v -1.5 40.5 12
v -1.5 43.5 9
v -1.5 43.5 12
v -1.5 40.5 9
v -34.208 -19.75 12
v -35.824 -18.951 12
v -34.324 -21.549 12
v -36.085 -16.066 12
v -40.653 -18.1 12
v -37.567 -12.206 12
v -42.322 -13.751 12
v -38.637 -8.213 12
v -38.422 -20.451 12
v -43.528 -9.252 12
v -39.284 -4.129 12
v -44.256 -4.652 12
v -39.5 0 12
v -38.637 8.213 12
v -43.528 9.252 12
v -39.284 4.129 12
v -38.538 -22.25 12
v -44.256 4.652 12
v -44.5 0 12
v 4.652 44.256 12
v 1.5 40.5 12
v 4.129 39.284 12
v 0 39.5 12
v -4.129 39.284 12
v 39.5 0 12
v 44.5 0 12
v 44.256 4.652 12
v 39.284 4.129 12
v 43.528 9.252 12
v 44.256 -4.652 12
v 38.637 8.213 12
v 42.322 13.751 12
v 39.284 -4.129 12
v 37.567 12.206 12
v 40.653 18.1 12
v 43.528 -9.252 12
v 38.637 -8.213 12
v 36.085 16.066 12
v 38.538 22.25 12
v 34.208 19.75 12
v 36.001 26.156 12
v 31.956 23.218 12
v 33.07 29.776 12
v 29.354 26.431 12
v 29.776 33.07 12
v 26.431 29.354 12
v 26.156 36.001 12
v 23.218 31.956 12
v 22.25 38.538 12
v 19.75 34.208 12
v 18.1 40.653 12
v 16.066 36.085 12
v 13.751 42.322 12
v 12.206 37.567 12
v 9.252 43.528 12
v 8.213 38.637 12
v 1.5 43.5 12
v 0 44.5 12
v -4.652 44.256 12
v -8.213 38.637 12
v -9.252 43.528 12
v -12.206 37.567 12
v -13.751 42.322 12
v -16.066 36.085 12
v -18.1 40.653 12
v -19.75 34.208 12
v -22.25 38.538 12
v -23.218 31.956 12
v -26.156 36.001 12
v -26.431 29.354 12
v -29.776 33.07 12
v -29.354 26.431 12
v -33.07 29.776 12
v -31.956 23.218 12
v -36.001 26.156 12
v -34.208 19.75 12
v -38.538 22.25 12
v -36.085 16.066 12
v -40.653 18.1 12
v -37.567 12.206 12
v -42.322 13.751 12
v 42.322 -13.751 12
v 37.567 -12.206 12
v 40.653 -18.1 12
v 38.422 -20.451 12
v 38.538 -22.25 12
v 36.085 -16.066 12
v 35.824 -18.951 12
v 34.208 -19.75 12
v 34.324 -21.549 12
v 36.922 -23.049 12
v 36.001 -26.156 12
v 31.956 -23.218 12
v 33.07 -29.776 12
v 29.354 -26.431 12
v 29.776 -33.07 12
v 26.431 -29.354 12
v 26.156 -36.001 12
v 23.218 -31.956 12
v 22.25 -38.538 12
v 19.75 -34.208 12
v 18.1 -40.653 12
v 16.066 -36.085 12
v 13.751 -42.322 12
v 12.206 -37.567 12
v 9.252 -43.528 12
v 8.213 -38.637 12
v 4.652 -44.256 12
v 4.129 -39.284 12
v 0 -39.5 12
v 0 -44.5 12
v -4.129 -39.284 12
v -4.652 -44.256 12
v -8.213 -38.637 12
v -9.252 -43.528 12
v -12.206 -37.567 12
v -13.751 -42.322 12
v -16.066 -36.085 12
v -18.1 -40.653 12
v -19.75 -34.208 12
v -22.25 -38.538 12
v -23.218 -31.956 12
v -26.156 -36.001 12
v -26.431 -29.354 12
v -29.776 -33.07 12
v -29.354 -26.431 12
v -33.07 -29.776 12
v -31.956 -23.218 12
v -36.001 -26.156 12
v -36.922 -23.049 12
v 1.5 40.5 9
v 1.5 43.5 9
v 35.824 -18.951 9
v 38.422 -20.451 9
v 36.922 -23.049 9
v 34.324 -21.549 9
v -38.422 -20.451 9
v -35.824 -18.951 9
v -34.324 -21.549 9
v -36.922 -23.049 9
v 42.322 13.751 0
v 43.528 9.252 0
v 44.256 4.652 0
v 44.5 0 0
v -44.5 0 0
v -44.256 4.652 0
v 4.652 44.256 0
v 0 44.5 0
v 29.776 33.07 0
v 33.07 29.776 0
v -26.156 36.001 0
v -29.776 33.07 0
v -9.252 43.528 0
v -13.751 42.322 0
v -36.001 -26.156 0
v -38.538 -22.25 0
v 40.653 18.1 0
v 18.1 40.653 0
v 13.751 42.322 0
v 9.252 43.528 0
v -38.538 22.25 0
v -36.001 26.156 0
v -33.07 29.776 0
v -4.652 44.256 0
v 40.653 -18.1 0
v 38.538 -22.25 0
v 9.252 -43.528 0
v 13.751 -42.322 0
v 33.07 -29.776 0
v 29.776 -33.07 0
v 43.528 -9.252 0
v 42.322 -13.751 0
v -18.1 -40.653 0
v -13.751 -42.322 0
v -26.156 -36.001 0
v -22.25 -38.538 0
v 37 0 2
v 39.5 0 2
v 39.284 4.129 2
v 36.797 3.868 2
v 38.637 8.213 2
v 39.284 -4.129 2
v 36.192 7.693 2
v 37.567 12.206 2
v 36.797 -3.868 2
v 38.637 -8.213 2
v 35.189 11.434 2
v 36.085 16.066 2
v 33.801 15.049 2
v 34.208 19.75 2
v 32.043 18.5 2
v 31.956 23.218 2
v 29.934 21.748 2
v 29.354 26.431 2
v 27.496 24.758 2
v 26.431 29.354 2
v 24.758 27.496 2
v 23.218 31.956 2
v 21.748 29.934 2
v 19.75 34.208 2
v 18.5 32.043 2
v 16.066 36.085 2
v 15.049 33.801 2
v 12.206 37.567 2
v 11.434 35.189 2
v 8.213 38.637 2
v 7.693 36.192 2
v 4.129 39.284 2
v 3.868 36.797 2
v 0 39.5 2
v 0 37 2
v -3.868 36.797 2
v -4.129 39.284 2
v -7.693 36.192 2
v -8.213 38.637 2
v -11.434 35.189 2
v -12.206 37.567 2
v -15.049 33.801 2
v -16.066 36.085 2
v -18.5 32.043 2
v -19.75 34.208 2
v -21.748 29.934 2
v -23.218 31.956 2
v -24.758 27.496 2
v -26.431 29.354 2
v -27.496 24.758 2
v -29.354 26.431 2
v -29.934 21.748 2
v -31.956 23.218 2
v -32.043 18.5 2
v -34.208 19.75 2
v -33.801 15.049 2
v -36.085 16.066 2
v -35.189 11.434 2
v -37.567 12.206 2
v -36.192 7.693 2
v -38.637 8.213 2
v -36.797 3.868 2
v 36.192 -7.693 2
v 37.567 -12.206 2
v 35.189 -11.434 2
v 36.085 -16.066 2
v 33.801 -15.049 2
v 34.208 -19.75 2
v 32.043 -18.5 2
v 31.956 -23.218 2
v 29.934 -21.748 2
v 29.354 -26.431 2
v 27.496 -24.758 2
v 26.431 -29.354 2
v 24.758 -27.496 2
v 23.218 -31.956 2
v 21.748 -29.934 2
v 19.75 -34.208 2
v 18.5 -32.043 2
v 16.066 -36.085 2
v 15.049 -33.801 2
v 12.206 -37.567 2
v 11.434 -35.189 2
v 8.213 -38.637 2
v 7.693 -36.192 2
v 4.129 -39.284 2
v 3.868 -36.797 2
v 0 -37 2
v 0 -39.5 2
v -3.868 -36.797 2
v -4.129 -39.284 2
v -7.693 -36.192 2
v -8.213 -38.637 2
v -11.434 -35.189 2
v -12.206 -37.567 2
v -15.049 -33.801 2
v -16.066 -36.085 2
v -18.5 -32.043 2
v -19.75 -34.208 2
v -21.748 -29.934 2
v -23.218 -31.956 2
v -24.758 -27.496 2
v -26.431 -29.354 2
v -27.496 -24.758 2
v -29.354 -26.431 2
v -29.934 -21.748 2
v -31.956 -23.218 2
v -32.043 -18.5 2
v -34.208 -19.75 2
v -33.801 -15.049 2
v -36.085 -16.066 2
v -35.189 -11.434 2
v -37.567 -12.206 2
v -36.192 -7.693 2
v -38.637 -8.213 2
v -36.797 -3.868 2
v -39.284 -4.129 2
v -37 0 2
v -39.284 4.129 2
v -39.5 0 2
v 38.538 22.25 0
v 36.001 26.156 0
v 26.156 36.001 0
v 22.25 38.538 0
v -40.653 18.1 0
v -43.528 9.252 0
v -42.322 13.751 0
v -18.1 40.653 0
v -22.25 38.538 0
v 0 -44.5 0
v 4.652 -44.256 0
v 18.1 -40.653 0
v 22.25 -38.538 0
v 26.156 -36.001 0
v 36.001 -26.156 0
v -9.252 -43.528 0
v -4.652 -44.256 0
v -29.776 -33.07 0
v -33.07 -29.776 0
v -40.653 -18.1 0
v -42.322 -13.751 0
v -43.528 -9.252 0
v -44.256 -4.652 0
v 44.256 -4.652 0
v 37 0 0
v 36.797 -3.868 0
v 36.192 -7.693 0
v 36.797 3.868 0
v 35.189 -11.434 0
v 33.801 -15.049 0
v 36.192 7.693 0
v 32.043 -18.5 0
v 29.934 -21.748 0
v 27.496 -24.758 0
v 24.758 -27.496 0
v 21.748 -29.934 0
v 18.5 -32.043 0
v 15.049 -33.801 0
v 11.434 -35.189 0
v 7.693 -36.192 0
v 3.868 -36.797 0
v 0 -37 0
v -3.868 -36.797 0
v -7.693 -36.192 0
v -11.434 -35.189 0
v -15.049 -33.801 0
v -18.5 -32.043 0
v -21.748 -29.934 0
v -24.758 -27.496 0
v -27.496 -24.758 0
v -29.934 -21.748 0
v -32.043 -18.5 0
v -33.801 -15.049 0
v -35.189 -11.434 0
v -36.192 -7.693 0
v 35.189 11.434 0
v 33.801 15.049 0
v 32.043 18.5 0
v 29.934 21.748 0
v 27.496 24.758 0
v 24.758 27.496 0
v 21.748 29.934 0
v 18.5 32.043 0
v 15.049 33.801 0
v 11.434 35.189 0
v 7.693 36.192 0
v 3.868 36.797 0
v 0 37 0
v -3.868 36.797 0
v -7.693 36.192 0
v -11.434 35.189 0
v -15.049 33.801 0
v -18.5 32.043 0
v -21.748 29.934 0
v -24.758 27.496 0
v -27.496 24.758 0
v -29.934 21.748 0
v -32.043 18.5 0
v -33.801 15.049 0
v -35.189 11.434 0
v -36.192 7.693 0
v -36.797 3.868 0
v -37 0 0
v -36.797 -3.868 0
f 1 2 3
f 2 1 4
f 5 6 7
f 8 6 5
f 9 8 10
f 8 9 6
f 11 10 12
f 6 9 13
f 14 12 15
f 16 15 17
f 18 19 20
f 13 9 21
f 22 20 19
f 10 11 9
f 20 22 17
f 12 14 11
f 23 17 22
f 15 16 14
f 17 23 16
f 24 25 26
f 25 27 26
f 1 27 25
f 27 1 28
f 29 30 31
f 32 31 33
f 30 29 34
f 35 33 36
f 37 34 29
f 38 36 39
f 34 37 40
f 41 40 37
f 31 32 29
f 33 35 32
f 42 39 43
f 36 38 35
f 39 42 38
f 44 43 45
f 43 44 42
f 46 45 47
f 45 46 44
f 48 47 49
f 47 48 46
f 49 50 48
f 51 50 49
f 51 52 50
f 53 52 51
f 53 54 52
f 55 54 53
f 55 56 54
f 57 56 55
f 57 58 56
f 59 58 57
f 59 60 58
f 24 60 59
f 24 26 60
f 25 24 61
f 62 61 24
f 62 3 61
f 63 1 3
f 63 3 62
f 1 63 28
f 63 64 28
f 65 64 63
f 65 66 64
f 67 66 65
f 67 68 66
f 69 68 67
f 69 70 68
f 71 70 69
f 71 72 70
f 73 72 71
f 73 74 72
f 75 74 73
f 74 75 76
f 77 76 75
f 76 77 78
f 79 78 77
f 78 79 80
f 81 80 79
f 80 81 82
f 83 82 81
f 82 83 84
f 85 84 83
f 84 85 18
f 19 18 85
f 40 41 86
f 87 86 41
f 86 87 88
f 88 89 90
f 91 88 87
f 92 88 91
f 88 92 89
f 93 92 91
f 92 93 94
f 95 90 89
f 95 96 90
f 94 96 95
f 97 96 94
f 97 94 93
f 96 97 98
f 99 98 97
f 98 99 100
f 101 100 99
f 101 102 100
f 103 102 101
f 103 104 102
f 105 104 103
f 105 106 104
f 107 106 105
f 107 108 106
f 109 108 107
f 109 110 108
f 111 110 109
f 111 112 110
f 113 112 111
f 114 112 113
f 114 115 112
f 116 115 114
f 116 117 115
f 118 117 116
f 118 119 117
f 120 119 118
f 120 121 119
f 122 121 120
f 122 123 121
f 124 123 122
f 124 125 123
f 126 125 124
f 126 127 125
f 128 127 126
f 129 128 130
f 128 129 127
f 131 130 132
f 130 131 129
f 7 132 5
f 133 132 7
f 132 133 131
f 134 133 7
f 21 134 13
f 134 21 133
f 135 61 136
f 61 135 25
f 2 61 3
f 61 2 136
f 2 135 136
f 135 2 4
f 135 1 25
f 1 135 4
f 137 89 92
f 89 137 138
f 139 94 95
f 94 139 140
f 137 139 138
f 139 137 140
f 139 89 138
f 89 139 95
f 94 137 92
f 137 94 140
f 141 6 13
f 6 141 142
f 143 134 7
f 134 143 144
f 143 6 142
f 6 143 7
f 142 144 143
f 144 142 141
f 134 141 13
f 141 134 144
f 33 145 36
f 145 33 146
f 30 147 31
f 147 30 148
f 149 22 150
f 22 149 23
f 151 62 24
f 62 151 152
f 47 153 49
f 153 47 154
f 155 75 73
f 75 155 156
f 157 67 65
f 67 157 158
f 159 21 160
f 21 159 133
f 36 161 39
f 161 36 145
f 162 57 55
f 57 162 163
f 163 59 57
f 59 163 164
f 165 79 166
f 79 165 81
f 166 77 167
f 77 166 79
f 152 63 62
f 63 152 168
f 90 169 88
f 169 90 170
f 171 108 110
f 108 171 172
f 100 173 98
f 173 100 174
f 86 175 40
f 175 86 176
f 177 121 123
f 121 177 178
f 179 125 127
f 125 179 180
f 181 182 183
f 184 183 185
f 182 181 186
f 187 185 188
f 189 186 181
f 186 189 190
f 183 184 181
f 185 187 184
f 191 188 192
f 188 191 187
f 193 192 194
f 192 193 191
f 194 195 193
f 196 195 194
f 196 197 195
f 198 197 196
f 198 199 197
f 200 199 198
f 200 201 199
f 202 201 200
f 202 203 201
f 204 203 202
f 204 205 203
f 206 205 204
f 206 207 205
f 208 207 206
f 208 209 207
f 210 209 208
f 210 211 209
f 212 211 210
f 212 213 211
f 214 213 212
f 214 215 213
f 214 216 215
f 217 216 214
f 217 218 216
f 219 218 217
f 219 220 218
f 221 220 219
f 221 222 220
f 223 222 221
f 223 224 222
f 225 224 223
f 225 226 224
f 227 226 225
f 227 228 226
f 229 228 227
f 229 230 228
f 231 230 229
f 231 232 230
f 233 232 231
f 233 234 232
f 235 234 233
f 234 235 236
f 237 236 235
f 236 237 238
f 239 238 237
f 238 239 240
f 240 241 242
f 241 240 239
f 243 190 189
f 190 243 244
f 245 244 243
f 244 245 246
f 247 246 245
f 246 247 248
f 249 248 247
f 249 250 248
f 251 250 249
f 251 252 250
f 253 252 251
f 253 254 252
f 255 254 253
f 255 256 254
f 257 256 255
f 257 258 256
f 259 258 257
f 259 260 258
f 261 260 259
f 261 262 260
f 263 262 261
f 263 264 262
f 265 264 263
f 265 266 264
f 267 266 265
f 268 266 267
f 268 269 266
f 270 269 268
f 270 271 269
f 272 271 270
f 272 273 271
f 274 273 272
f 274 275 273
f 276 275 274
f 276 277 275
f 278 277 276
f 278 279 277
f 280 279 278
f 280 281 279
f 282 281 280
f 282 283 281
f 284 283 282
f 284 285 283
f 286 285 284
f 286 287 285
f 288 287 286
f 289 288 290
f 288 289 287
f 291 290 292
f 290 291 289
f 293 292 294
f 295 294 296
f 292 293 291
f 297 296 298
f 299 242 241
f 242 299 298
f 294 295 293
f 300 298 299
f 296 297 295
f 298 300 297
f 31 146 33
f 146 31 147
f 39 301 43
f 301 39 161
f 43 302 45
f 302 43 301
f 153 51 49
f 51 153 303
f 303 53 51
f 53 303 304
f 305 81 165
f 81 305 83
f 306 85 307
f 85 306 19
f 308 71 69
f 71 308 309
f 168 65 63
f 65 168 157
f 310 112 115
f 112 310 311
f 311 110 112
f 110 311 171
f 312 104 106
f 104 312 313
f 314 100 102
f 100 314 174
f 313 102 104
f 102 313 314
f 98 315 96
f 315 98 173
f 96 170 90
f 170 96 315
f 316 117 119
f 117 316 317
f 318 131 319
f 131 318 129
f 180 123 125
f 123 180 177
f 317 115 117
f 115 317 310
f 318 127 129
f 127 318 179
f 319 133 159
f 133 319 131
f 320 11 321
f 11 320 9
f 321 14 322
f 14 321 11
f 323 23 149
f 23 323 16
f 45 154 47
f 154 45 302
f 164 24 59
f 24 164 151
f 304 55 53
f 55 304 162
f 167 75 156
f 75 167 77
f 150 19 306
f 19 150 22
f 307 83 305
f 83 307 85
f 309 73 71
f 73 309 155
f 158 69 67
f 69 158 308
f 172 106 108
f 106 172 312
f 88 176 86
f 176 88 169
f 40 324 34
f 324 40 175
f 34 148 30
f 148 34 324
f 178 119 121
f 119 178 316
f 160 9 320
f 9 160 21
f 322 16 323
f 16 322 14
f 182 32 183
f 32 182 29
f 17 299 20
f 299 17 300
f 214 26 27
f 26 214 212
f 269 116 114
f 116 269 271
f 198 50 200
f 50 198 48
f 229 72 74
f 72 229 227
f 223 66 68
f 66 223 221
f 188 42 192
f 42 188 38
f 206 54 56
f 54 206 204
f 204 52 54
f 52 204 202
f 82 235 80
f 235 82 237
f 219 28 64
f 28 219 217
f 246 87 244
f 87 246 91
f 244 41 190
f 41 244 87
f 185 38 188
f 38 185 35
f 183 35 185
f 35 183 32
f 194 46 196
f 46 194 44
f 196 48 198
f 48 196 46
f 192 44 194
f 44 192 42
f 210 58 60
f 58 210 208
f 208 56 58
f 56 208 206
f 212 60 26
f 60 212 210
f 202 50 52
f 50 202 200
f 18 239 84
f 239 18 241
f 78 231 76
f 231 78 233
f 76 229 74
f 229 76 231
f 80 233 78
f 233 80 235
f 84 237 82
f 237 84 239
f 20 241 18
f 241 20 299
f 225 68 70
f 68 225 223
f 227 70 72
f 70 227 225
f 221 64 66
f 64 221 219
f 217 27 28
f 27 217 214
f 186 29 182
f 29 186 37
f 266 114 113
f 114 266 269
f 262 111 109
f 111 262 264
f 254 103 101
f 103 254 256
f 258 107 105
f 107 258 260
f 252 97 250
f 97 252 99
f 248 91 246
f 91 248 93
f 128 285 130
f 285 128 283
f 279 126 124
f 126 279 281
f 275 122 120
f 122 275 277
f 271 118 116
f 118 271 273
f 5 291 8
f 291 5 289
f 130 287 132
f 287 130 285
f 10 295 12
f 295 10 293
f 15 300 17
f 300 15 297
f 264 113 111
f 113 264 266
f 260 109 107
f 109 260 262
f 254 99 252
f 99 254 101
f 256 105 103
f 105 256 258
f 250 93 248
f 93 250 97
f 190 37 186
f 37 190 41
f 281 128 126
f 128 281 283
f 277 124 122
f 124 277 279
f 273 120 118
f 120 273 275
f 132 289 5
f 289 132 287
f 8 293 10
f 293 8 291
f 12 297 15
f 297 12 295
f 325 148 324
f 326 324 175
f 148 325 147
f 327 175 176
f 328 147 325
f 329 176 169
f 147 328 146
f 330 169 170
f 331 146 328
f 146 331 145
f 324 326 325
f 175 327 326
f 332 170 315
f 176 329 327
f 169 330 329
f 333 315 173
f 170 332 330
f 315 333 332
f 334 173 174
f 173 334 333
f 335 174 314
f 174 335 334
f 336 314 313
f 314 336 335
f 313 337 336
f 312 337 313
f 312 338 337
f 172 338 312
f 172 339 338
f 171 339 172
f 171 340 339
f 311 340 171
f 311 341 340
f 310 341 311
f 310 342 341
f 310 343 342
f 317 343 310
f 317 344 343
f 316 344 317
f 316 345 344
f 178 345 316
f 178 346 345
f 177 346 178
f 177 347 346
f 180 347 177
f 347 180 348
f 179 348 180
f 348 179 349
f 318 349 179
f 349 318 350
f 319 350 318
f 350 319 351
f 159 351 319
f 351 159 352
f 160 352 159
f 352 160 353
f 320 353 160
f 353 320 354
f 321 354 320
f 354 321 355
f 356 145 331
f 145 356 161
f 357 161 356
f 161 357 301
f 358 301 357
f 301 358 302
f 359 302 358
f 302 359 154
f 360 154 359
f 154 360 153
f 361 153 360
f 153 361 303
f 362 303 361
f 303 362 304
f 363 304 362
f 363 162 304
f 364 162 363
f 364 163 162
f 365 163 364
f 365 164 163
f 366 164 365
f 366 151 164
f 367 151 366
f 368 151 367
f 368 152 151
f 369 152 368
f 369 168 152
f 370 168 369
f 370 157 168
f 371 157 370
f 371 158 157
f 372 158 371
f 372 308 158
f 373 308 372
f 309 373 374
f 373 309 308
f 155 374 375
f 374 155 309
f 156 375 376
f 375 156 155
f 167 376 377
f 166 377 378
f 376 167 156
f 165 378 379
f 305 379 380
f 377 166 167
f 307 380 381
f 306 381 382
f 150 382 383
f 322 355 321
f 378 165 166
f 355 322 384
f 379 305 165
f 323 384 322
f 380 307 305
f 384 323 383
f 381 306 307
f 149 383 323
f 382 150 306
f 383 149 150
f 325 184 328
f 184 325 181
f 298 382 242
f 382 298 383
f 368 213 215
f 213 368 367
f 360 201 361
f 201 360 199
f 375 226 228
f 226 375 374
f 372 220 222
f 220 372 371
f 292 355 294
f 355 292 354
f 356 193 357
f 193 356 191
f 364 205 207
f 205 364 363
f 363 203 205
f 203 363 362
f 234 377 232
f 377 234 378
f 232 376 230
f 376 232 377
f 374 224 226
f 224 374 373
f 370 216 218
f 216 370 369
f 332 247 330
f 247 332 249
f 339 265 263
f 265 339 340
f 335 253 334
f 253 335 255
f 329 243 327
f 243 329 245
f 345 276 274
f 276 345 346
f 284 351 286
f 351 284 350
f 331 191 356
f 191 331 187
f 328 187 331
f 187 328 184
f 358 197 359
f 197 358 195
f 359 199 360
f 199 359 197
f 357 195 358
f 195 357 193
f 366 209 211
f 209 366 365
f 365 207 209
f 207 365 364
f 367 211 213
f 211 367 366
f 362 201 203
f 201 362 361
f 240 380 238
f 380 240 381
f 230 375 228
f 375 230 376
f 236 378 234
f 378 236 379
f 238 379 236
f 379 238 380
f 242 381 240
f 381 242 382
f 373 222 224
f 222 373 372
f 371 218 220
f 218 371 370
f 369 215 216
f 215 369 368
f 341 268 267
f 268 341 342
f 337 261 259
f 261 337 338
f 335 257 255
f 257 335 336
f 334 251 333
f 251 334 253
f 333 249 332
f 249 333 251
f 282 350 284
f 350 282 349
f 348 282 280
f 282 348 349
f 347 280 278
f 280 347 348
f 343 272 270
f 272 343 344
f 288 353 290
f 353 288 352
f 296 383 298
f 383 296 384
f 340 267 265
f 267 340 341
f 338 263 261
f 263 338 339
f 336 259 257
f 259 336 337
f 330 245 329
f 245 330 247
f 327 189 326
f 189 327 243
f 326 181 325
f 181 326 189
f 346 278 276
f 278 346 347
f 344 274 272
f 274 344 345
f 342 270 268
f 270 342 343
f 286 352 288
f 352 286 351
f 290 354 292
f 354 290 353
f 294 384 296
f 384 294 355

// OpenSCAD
translate ([0, 0, 2])
difference () {
    cylinder($fn=60, 10, 44.5, 44.5);
    translate([0, 0, -1]) cylinder($fn=60, 12, 39.5, 39.5);
    for (a =[0:120:359])
        translate([42 * sin(a), 42 * cos(a), 8.5])
        rotate([0, 0, a / 2])
              cube([3, 3, 3], center=true);
}

difference () {
    cylinder($fn=60, 2, 44.5, 44.5);
    translate([0, 0, -1]) cylinder($fn=60, 12, 37.0, 37.0);
}
